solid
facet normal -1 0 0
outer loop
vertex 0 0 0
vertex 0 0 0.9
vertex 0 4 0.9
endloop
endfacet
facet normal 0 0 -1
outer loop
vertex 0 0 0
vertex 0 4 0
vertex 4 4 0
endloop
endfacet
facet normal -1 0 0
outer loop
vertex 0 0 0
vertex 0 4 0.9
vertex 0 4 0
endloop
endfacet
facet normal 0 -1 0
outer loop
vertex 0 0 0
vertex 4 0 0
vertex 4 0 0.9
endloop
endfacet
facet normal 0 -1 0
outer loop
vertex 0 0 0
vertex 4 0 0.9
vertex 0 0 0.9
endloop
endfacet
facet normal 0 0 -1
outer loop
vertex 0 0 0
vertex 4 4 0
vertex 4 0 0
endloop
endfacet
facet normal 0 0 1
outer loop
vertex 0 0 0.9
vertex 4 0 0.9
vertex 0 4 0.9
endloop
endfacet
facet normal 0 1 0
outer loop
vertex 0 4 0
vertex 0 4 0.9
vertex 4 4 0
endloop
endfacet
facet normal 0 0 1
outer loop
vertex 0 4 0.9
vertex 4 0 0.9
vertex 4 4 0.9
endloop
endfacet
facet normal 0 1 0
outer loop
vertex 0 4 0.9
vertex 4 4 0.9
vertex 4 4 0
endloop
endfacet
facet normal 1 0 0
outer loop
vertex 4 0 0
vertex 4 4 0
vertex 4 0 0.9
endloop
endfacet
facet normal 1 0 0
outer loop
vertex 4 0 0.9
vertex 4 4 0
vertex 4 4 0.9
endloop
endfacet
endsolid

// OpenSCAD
/* Warning, this is a very basic generator with a lot of approximation 
input data : [VQFN, NZA, 4x4x0.9mm, 24, , A, C04-01113A]
generated by com.zoubworld.electronics.cad.model3d.Basic
Date : Sun Feb 15 10:50:49 CET 2026
*/

//body
color("black")
translate([0,0,0])
cube([4.0,4.0,0.9], center=false);
